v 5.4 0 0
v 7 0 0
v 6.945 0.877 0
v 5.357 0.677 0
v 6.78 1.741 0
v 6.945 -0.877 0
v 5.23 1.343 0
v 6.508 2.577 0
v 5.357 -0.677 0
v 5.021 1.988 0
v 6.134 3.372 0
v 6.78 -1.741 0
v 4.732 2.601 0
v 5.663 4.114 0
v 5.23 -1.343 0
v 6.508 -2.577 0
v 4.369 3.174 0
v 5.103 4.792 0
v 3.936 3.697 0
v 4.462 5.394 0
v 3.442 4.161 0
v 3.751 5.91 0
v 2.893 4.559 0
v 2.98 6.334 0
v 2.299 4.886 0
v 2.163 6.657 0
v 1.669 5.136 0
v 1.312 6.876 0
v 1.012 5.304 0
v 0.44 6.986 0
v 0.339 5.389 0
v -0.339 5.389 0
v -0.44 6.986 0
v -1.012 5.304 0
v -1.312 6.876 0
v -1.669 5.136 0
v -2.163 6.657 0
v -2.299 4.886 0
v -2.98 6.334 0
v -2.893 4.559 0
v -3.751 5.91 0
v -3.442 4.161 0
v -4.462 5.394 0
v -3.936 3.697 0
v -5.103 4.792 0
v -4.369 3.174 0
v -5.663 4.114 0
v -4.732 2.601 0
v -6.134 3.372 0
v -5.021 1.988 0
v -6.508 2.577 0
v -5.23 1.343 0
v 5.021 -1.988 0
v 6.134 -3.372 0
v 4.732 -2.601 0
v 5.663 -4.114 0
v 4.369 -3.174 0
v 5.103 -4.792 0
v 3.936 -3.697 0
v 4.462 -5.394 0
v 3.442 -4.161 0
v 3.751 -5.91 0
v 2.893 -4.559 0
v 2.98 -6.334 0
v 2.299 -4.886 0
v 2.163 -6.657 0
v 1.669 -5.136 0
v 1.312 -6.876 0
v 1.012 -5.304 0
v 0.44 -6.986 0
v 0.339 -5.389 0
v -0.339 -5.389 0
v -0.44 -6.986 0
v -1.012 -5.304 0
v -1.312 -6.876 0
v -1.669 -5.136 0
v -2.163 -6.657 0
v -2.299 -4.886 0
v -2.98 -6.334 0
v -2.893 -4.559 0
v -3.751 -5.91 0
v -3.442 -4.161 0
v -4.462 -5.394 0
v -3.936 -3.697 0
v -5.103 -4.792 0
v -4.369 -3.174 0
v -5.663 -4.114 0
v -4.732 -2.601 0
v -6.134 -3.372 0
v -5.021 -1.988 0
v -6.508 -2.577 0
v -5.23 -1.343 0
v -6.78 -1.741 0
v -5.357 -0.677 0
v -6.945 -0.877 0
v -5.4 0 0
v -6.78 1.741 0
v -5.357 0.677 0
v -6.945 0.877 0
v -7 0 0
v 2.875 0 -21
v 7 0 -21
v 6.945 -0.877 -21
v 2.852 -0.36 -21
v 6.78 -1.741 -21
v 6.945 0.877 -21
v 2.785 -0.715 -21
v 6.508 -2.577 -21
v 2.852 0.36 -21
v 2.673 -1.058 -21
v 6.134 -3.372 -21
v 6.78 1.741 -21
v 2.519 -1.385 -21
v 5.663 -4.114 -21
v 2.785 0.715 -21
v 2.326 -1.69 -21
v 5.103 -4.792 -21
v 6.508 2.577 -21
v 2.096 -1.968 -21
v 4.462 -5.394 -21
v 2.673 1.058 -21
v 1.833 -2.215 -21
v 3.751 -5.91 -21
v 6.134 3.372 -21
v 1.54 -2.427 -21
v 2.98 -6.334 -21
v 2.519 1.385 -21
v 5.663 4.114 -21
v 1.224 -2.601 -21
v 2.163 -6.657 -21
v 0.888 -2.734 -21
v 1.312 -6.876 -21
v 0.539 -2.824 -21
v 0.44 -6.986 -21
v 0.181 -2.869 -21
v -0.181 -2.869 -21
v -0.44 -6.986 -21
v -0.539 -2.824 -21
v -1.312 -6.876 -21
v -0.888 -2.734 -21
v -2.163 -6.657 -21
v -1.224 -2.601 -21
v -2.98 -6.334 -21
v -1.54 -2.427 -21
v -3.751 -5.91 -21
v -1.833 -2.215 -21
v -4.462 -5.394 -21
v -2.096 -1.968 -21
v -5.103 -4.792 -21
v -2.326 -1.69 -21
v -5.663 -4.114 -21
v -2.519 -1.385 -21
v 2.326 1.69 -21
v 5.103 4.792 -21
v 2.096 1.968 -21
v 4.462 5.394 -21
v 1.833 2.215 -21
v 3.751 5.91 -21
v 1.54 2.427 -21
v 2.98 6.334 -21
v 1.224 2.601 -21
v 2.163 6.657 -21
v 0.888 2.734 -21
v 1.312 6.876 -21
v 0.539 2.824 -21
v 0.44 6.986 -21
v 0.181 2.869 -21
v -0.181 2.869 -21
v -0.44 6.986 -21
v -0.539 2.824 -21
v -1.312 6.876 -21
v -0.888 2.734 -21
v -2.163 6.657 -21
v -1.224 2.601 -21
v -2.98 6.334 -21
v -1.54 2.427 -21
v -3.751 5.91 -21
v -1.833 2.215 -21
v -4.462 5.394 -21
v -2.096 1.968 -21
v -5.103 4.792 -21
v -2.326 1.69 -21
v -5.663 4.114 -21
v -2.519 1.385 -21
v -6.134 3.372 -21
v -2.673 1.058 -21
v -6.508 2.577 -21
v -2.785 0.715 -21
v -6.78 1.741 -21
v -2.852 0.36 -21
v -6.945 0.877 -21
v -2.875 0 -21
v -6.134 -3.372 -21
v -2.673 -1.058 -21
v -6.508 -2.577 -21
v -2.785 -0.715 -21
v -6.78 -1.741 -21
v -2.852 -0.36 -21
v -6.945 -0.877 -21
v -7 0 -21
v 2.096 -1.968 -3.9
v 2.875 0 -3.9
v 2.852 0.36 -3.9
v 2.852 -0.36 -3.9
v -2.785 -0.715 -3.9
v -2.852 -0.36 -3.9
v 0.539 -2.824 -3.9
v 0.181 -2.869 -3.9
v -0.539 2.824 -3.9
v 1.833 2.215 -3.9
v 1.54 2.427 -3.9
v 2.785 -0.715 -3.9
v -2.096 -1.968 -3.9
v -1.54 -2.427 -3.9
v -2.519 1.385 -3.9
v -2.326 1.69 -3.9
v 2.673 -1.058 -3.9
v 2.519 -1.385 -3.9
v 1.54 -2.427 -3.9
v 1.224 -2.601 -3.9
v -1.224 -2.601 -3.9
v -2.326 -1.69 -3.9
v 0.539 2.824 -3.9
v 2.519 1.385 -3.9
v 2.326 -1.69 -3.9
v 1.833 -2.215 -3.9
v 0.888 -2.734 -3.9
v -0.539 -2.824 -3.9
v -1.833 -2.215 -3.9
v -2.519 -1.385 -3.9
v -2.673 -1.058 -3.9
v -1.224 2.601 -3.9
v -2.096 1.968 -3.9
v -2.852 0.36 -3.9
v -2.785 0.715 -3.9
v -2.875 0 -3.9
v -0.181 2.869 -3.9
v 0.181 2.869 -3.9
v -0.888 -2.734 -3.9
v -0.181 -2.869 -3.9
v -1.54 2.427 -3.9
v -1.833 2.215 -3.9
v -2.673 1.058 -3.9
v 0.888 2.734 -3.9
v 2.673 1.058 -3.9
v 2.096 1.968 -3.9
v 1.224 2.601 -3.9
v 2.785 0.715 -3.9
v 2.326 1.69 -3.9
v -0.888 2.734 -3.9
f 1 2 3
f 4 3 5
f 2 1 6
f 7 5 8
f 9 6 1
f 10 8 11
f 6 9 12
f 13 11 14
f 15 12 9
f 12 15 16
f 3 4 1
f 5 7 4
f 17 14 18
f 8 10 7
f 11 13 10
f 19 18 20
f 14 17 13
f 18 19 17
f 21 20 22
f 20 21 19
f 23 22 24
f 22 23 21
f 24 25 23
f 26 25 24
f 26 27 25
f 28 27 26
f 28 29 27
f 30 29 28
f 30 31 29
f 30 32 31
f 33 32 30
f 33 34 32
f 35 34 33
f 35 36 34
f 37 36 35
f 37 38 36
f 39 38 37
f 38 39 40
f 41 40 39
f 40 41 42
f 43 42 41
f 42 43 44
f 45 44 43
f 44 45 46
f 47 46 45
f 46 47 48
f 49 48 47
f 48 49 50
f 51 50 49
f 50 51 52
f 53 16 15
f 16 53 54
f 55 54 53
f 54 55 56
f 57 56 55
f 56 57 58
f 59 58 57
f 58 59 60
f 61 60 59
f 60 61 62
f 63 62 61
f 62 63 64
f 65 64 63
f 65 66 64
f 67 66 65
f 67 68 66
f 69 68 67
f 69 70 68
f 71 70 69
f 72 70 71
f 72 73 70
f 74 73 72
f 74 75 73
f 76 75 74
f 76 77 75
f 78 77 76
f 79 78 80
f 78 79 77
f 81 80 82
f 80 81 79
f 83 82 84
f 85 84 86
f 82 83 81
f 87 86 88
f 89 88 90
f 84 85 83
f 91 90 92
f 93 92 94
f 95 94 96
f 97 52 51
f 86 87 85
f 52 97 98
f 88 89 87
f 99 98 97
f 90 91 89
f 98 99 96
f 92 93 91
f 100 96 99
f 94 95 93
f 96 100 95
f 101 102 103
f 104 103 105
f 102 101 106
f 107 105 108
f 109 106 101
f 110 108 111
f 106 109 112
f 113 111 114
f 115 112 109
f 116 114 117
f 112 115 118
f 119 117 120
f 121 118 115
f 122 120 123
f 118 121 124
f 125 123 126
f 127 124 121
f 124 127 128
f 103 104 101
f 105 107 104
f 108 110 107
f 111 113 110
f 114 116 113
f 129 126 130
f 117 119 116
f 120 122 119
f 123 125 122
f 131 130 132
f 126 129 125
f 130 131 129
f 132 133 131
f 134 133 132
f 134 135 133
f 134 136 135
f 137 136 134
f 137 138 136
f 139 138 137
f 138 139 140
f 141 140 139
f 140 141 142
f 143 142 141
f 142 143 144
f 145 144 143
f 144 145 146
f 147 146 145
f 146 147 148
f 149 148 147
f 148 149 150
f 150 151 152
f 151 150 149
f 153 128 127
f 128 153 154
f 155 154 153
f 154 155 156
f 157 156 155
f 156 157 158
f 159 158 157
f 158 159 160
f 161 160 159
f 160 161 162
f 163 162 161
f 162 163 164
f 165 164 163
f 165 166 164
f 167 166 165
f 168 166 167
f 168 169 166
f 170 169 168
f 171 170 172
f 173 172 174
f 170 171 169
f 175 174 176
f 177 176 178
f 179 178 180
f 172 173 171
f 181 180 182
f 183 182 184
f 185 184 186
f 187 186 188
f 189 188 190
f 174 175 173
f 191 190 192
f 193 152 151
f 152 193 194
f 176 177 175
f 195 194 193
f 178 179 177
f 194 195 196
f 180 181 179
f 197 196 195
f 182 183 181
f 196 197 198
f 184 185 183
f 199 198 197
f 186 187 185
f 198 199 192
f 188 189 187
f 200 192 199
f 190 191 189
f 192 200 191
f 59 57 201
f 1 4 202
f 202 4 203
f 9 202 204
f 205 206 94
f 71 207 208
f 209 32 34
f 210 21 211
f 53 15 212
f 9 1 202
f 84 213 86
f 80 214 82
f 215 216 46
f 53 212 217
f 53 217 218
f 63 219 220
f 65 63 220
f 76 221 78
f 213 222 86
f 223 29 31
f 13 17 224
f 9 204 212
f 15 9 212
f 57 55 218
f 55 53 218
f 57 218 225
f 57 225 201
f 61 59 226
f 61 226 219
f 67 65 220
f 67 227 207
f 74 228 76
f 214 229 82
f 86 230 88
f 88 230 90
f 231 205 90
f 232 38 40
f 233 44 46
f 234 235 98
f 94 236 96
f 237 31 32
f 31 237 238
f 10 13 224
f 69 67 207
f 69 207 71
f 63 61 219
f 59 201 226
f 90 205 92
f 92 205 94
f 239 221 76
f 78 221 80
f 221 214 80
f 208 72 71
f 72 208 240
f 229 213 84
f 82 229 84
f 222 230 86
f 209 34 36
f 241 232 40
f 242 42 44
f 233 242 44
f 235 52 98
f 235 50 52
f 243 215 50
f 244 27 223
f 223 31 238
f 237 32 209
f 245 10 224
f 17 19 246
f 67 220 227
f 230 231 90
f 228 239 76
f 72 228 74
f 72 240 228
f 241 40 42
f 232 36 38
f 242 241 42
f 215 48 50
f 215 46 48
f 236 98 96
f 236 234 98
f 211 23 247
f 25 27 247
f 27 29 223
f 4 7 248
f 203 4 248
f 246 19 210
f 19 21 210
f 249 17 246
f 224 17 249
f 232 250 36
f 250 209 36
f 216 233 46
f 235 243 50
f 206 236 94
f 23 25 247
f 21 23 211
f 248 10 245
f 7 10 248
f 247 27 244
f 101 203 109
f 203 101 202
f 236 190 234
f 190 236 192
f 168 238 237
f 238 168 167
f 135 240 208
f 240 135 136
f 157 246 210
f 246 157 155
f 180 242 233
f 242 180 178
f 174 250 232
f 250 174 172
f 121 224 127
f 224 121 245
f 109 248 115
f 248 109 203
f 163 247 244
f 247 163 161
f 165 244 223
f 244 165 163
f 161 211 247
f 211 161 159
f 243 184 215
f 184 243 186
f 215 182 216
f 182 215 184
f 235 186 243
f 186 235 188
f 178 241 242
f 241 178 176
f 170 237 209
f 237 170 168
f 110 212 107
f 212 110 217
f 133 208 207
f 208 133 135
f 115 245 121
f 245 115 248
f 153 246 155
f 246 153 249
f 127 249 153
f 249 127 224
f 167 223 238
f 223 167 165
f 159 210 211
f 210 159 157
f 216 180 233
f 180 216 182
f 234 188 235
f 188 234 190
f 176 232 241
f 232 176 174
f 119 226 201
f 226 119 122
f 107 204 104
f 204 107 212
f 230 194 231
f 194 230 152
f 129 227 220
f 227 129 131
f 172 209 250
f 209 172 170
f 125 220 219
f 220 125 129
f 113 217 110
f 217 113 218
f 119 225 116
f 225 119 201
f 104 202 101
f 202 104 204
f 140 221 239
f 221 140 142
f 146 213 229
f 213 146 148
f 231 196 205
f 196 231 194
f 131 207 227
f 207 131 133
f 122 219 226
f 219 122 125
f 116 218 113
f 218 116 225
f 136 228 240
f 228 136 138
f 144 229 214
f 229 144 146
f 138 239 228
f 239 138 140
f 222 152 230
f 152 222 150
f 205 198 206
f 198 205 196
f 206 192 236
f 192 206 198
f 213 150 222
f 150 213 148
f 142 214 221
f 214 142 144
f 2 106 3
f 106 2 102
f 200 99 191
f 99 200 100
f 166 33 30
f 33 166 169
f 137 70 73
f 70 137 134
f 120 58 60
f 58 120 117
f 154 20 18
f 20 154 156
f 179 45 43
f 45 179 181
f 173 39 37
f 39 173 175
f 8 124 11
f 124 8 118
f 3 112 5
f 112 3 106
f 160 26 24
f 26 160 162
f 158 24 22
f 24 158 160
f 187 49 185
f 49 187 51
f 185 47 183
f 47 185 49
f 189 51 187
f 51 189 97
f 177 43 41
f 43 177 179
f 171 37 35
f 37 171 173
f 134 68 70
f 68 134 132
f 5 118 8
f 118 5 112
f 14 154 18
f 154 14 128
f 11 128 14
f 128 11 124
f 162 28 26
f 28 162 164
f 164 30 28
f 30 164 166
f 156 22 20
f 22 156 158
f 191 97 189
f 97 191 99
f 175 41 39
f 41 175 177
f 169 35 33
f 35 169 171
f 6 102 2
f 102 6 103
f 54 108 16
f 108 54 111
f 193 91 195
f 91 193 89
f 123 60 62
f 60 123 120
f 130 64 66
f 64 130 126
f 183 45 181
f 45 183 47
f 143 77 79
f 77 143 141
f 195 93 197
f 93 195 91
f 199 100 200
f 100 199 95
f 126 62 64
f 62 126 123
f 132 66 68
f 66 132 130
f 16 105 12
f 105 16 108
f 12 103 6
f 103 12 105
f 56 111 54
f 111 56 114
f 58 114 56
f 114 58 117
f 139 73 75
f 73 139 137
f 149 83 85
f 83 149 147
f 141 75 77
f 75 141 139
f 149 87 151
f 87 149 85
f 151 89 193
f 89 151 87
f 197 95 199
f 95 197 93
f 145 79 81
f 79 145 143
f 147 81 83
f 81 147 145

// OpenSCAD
$fn = 50;


difference() {
	union() {
		translate(v = [0, 0, -21.0000000000]) {
			cylinder(h = 21, r = 7.0000000000);
		}
	}
	union() {
		translate(v = [0, 0, 0]) {
			rotate(a = [0, 0, 0]) {
				difference() {
					union() {
						#translate(v = [0, 0, -21.0000000000]) {
							cylinder(h = 21, r = 2.6000000000);
						}
						#translate(v = [0, 0, -3.9000000000]) {
							cylinder(h = 3.9000000000, r = 7.0000000000, r1 = 2.8750000000, r2 = 5.4000000000);
						}
						#translate(v = [0, 0, -21.0000000000]) {
							cylinder(h = 21, r = 2.8750000000);
						}
						#translate(v = [0, 0, -21.0000000000]) {
							cylinder(h = 21, r = 2.6000000000);
						}
					}
					union();
				}
			}
		}
	}
}
